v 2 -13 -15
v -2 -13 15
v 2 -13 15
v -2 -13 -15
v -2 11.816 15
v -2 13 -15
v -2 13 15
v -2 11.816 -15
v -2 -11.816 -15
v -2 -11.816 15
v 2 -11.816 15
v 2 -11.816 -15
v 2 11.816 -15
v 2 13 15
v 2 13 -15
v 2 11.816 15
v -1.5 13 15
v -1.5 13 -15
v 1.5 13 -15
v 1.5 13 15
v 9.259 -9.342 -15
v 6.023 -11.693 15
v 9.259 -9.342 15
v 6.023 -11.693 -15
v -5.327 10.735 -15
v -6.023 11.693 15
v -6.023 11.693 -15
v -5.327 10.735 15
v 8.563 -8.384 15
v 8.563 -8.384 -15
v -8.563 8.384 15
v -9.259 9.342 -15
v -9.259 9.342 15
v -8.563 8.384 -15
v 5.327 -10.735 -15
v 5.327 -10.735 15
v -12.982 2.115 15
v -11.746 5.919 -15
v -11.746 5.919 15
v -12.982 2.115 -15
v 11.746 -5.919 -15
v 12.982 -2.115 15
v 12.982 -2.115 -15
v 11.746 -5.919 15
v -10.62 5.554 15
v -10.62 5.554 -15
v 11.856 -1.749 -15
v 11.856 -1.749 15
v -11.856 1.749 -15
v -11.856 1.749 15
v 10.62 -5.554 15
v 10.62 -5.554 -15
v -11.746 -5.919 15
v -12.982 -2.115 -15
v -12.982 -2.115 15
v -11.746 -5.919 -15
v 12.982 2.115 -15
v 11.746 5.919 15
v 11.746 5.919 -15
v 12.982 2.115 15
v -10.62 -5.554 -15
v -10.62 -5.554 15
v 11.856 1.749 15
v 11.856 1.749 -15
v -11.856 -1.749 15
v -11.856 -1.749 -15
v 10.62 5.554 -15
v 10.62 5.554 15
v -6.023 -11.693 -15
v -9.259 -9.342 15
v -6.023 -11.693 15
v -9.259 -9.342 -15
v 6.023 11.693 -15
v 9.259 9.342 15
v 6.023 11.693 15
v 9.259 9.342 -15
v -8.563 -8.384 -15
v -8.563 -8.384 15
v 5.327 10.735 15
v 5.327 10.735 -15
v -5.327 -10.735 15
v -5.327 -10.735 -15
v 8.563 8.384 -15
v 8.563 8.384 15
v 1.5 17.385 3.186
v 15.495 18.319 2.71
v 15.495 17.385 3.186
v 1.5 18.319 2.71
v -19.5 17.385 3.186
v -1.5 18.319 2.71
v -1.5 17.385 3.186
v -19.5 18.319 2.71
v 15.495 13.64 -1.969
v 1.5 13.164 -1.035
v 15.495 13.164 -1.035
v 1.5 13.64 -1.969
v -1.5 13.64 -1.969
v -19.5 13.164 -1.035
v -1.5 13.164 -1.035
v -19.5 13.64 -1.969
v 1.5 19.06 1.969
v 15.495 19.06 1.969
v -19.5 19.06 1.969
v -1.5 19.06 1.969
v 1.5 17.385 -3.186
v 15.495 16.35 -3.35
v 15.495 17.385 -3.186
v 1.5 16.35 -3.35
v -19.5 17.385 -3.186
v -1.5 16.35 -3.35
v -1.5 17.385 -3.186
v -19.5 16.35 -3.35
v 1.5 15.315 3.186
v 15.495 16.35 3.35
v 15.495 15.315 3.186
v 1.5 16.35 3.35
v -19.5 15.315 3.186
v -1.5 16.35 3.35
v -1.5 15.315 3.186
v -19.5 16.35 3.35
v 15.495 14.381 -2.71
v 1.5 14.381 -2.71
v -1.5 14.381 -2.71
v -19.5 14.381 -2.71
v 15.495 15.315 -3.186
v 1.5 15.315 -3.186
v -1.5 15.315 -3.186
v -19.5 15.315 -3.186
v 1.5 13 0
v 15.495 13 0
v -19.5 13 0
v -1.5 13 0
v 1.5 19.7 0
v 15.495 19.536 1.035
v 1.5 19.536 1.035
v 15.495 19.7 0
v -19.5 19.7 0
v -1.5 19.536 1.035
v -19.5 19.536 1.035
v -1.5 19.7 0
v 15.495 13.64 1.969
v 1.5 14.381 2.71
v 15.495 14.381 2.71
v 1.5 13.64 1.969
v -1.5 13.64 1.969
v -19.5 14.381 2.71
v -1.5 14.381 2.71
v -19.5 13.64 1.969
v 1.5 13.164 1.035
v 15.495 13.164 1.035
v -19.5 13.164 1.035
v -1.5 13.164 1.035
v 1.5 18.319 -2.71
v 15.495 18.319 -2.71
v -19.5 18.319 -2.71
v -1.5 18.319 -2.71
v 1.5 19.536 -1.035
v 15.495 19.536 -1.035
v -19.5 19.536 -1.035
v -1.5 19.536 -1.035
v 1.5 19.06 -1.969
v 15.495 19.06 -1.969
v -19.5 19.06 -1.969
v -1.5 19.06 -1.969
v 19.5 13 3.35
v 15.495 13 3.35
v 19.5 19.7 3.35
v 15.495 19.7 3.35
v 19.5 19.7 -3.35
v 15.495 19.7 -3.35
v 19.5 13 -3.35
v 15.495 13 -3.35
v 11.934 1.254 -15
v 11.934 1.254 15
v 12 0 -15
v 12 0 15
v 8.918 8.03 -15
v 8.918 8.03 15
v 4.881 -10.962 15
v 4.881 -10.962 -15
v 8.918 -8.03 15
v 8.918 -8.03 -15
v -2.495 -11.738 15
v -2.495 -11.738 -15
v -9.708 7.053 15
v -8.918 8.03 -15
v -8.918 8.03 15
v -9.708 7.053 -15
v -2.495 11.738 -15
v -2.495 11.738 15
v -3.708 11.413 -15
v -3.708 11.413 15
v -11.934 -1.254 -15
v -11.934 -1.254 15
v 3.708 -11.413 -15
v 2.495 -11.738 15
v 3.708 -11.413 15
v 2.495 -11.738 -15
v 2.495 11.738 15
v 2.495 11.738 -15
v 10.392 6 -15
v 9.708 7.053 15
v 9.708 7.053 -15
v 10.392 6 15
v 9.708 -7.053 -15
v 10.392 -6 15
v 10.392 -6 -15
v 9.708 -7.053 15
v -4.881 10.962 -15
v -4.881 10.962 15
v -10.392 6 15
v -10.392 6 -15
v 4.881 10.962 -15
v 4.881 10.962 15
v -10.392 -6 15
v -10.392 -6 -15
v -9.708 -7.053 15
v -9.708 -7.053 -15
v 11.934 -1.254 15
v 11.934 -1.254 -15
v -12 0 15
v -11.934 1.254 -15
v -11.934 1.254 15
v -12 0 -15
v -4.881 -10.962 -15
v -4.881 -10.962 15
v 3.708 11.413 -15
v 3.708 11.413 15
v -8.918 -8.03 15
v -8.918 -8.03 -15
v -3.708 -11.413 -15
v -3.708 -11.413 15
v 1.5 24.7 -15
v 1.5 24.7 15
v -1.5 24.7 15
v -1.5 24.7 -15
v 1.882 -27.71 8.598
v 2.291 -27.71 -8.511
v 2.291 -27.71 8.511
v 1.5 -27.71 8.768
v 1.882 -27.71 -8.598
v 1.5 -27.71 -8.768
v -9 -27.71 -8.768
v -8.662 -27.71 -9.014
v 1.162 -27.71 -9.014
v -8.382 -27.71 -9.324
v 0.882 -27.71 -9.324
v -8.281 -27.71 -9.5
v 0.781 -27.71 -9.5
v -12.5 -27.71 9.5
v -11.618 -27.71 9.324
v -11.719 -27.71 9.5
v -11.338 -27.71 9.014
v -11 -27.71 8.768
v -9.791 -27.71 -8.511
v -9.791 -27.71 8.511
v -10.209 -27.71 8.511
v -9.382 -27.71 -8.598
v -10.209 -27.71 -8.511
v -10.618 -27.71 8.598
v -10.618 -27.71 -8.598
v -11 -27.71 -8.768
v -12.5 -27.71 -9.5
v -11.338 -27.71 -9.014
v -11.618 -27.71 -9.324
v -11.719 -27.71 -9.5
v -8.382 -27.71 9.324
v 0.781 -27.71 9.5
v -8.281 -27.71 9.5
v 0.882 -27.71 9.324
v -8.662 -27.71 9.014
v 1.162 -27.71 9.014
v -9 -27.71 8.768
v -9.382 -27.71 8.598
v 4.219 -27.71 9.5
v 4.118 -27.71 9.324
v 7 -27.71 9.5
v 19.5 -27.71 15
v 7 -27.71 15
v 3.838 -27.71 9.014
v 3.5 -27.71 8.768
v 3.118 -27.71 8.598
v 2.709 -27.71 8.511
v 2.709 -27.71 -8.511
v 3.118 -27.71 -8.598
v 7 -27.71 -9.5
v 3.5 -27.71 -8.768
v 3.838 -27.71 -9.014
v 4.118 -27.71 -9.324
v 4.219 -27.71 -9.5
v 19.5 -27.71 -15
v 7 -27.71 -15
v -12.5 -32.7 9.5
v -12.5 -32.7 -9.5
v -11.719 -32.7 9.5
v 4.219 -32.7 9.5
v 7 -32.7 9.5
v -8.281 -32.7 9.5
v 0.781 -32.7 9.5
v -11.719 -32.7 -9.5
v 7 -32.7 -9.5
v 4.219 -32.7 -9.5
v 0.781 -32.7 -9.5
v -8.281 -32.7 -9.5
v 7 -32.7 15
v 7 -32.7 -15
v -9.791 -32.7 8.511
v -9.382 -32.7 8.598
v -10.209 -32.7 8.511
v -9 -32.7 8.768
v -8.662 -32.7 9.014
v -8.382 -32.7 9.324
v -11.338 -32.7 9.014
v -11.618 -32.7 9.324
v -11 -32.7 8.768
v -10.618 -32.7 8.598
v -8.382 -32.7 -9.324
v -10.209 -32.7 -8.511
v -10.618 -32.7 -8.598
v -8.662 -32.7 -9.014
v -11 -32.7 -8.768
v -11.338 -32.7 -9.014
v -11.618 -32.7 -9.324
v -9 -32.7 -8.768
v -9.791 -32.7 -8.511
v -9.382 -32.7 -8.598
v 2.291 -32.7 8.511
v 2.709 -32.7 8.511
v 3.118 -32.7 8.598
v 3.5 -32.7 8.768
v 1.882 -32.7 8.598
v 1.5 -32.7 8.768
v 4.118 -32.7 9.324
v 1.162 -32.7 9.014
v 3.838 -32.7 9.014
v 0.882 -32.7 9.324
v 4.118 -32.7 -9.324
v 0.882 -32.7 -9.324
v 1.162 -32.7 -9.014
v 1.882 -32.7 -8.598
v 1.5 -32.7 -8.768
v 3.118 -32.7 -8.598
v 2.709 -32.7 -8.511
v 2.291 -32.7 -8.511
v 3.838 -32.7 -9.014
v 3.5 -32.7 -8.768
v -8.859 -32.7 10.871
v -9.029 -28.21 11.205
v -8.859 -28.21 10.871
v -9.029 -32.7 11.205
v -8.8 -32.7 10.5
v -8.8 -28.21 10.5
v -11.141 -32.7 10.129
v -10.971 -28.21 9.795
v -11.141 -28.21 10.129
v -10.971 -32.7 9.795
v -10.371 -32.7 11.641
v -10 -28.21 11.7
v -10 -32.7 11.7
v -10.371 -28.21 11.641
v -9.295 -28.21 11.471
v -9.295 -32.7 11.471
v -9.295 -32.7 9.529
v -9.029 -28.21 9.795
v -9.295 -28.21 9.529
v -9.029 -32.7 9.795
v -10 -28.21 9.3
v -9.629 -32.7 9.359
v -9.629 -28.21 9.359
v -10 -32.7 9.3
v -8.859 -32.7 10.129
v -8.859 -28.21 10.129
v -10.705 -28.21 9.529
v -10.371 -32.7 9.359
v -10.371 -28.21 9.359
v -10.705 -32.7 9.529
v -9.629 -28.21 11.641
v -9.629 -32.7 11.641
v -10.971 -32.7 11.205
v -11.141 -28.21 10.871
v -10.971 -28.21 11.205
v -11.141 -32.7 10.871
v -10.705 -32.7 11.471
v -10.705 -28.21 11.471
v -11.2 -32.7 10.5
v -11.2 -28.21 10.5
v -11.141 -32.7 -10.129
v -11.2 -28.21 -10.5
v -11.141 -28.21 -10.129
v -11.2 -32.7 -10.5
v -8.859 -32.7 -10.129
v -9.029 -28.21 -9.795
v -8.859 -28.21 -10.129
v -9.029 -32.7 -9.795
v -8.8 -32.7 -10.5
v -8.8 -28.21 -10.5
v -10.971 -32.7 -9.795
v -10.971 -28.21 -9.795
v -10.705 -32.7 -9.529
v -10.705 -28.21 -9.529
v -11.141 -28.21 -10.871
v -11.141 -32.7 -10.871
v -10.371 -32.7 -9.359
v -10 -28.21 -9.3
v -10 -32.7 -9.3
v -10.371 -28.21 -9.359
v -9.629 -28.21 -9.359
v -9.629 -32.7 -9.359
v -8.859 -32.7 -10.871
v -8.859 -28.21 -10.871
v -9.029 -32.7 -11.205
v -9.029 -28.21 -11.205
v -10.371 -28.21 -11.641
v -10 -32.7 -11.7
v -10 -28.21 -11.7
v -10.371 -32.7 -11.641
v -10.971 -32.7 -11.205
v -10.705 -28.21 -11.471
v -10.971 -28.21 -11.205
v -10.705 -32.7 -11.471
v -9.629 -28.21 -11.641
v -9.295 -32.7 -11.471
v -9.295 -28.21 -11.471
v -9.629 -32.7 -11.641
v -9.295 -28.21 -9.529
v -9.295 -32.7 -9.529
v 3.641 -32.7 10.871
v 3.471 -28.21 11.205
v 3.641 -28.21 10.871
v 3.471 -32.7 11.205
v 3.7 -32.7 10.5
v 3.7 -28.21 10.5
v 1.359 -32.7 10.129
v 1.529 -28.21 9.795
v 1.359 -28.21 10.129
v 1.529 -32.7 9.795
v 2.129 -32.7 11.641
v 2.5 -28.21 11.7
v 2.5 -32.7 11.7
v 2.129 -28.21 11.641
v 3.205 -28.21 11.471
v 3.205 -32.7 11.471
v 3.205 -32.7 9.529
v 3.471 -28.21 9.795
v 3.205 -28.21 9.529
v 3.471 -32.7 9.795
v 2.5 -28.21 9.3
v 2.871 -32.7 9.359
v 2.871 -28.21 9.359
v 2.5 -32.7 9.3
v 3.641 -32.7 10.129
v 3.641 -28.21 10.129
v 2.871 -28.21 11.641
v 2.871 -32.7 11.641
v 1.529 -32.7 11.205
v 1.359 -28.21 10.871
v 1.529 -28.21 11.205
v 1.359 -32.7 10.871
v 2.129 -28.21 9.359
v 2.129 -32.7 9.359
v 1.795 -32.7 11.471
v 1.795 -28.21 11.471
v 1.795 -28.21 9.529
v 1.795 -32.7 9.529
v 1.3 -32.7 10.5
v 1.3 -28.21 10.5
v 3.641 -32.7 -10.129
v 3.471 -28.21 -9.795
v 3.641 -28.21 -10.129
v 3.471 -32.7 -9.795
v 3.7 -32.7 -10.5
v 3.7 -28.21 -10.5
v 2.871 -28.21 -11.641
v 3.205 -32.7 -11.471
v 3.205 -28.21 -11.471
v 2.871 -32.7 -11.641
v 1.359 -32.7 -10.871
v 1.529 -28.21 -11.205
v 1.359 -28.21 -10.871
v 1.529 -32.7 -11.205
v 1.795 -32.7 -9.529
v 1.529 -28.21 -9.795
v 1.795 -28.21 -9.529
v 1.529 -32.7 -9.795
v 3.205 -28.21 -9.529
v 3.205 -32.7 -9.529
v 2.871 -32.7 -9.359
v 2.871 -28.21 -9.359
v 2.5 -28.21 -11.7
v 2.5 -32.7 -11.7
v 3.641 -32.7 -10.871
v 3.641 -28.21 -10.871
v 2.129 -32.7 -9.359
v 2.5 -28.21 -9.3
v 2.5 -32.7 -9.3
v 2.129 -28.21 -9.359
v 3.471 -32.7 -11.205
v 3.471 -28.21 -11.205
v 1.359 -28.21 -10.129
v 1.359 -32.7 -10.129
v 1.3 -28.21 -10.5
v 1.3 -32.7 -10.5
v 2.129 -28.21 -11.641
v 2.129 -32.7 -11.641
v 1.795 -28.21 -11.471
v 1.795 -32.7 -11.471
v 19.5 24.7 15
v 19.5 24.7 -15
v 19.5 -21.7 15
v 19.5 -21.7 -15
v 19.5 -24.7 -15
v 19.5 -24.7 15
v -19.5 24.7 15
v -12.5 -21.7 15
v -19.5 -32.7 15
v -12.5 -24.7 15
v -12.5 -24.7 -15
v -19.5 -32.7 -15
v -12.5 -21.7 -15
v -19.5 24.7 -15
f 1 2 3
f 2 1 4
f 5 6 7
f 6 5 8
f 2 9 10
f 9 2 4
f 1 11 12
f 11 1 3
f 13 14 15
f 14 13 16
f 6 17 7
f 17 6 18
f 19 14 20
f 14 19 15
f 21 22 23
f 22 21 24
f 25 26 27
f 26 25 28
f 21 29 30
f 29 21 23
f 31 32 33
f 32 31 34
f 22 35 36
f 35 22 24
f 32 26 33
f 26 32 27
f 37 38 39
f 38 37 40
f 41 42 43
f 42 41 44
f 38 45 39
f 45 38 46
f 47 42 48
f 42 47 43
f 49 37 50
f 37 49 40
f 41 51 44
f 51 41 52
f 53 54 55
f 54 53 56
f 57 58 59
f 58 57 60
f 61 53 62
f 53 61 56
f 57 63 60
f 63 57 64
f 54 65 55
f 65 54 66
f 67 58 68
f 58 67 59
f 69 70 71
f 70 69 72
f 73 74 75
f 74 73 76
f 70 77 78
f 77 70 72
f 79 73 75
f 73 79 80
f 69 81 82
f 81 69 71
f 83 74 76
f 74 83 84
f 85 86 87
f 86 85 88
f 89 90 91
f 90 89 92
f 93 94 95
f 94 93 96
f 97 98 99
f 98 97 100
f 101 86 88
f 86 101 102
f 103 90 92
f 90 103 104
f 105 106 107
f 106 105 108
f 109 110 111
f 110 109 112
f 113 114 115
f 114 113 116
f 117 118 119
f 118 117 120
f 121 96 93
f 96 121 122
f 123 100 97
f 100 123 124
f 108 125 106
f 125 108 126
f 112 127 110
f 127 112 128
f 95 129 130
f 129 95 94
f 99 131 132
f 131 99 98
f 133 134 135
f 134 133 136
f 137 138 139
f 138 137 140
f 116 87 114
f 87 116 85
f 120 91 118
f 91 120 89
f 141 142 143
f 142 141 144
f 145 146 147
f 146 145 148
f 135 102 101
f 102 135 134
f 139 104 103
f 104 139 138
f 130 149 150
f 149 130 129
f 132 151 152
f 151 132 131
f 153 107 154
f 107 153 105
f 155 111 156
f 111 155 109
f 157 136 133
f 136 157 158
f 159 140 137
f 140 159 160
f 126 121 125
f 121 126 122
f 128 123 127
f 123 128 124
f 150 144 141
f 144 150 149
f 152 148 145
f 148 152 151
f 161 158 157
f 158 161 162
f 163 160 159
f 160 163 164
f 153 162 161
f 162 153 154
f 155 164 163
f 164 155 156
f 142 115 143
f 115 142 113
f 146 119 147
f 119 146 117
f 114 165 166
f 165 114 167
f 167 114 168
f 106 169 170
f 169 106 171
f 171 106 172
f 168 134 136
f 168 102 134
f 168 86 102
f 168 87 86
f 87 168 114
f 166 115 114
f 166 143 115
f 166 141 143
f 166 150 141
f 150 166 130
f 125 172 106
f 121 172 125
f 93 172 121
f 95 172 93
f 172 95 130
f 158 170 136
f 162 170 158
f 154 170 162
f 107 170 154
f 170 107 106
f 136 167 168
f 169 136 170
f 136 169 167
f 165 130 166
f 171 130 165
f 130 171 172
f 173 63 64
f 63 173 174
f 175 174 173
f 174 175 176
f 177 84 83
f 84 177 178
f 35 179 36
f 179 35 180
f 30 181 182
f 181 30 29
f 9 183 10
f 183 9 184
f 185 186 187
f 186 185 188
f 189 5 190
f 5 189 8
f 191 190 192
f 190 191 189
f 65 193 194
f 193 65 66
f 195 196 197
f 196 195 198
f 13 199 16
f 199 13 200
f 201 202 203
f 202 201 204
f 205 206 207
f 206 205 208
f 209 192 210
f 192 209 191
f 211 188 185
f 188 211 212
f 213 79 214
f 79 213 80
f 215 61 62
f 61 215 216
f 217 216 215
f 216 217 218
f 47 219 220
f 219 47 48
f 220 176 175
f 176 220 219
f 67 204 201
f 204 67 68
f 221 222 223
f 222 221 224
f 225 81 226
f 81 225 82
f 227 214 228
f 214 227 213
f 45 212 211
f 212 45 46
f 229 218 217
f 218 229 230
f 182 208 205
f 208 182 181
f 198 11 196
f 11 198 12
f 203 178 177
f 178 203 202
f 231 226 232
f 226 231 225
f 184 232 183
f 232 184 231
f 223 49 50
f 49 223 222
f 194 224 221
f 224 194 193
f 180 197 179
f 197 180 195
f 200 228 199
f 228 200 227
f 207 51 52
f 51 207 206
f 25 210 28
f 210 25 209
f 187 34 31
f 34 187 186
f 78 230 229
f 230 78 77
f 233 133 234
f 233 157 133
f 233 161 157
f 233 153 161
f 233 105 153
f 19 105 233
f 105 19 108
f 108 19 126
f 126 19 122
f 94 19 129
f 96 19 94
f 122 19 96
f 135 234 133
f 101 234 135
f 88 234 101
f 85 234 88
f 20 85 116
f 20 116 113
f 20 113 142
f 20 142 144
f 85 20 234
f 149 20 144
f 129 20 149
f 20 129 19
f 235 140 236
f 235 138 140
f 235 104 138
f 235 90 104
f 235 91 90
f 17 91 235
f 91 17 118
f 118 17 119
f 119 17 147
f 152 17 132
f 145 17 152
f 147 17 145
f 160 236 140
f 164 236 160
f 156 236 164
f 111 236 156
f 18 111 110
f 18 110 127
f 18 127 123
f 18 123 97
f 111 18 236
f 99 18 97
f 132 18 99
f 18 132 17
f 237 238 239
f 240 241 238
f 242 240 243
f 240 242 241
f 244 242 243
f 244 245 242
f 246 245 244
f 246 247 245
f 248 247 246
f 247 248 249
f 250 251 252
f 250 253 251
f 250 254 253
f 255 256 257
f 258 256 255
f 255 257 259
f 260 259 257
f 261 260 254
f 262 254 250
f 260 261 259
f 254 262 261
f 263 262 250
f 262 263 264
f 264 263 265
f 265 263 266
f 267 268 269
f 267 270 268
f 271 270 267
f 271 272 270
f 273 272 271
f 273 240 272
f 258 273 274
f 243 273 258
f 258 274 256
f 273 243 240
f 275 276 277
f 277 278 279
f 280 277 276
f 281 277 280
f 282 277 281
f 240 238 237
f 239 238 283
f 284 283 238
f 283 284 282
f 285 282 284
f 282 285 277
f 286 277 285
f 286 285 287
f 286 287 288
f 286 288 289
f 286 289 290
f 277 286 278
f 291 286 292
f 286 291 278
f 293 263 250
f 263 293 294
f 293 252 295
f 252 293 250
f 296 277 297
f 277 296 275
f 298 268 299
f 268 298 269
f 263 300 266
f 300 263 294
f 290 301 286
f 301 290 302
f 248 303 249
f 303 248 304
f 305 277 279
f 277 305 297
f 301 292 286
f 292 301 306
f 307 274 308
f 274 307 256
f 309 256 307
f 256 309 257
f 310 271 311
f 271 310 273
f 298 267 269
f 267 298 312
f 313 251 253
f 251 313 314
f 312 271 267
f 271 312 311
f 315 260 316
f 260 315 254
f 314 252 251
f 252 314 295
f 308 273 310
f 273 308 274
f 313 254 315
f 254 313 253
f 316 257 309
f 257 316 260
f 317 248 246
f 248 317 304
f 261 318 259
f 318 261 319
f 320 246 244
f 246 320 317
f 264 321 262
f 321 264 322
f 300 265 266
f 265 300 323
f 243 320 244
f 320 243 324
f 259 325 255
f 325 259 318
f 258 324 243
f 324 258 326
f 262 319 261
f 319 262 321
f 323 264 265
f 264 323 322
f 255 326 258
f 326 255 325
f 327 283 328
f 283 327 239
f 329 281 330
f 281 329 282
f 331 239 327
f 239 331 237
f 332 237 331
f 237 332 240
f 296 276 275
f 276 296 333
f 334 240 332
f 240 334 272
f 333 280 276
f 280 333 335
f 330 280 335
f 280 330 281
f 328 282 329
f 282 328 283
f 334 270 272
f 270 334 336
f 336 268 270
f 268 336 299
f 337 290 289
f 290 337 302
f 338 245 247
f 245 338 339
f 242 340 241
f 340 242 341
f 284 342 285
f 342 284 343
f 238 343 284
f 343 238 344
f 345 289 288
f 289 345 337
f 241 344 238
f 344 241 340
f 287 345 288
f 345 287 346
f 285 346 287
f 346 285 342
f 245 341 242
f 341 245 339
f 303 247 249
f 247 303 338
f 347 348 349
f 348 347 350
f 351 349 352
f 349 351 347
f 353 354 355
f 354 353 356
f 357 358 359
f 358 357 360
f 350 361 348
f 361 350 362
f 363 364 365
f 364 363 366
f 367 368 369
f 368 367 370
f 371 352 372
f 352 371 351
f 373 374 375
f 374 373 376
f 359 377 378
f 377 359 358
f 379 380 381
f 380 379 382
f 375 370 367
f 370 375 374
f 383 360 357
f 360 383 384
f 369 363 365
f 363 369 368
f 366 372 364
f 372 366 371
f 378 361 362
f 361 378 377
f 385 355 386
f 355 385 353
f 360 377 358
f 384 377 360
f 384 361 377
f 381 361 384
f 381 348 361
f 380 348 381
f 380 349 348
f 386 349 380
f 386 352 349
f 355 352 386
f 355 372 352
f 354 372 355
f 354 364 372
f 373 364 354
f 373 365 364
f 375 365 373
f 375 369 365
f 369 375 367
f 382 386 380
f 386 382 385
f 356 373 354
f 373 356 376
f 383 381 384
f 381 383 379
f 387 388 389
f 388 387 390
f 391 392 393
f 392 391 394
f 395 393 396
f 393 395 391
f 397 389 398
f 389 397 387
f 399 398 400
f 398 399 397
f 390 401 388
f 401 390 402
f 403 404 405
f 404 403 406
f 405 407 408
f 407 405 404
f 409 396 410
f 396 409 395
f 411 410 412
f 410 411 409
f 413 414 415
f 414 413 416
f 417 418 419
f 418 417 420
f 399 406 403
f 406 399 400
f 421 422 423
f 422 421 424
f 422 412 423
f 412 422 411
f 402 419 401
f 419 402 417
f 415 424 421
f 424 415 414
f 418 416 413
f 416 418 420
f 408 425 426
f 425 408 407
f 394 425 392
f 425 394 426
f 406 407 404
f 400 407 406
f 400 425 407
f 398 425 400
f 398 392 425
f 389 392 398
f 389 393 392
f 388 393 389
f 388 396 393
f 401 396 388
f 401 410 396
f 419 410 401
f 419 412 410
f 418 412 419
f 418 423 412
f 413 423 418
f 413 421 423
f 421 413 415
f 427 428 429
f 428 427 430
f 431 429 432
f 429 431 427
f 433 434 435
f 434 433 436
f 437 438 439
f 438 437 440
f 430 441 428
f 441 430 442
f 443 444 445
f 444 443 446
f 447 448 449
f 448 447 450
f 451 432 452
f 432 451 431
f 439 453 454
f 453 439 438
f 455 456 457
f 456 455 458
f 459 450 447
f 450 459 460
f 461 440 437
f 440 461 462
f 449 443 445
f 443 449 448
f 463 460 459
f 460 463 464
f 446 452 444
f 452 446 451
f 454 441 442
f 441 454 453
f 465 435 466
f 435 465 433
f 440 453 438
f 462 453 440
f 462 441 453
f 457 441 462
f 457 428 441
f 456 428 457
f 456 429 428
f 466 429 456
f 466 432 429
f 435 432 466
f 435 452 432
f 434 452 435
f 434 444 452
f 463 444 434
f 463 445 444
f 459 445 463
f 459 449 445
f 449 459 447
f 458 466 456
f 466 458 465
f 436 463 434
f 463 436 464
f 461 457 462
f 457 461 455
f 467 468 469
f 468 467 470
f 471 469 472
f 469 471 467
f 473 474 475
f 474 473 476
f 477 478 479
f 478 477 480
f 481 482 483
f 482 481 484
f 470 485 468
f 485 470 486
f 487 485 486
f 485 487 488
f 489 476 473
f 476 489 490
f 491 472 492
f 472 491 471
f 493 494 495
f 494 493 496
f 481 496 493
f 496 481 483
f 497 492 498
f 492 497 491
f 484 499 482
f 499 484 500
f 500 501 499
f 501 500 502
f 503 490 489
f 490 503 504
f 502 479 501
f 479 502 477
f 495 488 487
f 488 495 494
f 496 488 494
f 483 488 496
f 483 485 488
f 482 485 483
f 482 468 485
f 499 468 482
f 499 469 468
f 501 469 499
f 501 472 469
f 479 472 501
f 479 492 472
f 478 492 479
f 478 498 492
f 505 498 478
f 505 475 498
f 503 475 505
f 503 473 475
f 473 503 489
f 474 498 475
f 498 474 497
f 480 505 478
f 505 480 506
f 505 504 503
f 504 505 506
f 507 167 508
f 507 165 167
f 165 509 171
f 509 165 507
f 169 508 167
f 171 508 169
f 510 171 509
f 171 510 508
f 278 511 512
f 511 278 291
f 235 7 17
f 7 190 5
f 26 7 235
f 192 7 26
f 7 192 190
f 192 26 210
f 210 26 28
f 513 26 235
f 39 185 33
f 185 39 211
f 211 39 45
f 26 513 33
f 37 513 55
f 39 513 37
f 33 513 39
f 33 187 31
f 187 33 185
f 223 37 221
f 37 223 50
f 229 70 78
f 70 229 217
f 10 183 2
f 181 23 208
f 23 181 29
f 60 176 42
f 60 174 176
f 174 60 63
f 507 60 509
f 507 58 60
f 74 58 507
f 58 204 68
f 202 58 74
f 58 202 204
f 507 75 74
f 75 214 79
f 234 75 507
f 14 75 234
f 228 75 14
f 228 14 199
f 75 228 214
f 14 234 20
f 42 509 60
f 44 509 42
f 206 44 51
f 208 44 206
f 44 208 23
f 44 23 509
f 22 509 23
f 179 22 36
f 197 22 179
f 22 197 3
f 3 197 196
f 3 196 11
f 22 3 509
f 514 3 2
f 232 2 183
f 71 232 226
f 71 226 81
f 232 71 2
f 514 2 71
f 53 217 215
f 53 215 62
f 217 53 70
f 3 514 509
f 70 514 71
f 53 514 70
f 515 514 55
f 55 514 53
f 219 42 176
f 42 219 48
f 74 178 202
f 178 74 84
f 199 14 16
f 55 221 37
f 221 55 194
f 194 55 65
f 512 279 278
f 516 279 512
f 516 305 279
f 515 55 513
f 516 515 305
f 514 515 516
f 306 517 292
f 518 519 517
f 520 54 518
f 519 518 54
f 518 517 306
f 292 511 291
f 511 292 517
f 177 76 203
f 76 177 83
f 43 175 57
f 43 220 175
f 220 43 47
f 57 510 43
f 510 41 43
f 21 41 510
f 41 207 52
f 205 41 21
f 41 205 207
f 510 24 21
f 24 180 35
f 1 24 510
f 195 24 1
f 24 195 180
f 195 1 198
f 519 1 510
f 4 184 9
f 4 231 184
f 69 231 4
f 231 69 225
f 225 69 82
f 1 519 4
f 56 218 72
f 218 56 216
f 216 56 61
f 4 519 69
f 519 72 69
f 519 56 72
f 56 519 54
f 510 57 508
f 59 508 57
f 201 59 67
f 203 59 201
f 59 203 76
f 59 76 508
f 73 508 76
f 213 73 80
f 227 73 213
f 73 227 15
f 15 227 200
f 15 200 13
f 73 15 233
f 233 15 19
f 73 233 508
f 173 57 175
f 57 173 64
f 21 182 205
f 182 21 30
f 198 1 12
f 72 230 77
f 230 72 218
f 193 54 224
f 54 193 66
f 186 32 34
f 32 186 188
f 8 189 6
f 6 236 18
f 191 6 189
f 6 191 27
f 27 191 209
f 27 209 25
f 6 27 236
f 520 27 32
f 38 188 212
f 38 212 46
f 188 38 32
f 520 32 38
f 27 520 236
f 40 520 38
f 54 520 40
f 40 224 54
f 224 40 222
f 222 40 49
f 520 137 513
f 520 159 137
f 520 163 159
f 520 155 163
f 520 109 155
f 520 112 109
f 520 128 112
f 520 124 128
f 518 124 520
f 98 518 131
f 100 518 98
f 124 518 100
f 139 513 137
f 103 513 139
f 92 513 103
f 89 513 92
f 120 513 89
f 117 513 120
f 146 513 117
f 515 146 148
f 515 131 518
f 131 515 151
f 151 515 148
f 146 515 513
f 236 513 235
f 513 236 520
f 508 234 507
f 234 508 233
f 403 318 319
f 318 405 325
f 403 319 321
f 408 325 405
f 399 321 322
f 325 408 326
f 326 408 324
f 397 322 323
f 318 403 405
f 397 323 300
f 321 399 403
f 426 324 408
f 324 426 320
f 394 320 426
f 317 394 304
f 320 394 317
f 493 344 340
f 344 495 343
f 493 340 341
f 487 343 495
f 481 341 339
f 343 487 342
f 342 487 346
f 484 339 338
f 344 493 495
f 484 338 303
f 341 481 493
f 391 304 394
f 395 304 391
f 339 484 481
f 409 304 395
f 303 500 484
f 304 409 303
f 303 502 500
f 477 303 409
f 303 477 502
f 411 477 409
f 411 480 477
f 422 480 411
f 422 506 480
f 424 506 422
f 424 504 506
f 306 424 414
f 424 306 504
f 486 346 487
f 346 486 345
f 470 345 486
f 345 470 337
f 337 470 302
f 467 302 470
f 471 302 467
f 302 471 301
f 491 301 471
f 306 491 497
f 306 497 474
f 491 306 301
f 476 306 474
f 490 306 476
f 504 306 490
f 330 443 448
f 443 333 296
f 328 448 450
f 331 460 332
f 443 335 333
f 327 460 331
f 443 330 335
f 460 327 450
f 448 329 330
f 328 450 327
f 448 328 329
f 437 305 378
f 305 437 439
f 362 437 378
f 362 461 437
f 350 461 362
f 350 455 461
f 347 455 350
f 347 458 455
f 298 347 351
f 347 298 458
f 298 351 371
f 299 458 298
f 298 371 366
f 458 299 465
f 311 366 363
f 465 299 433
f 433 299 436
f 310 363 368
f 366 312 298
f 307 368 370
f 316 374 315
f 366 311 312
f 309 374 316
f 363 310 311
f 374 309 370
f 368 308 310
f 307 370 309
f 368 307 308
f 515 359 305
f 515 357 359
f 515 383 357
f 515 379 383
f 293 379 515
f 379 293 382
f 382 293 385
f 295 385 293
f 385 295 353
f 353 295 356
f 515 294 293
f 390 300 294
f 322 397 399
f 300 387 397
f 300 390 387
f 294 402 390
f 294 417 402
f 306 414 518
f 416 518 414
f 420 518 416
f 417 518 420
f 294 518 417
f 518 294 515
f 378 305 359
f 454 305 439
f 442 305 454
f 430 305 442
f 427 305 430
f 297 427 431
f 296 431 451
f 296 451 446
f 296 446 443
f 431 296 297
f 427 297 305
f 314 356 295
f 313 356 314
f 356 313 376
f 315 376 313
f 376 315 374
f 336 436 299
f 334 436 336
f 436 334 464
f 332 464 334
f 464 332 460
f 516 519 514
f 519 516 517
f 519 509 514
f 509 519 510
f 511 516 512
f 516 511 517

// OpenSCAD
// file: lib/boltDim.scad
/*
    Mounting Blocks to build a camera boom.

    Copyright (C) 2021 John Winans

    This program is free software: you can redistribute it and/or modify
    it under the terms of the GNU General Public License as published by
    the Free Software Foundation, either version 3 of the License, or
    (at your option) any later version.

    This program is distributed in the hope that it will be useful,
    but WITHOUT ANY WARRANTY; without even the implied warranty of
    MERCHANTABILITY or FITNESS FOR A PARTICULAR PURPOSE.  See the
    GNU General Public License for more details.

    You should have received a copy of the GNU General Public License
    along with this program.  If not, see <https://www.gnu.org/licenses/>.
*/

bolt_dim_M2_dia = 3;		// for M2 bolt loose fit
bolt_dim_M2_tap = 2.4;		// for self-tapping a M2 bolt
bolt_dim_M2_head_dia = 4.6;// diameter for a crown countersink

bolt_dim_M25_dia = 3.5;		// for M2.5 bolt loose fit
bolt_dim_M25_tap = 2.6;		// for self-tapping a M2.5 bolt
bolt_dim_M25_head_dia = 6;	// diameter for a crown countersink

bolt_dim_M3_dia = 3.6;		// M3 bolt loose fit
bolt_dim_M3_tap = 3.1;		// for self-tapping M3 bolt
bolt_dim_M3_head_dia = 6.5;	// diameter for a crown countersink

bolt_dim_M5_dia = 5.4;		// for M5 bolt loose fit
bolt_dim_M5_tap = 5;		// for self-tapping a M5 bolt
bolt_dim_M5_head_dia = 9;	// diameter for a crown countersink

nut_dim_M5_DIN985 = 9.6;	// diameter for a hex hole to retain am M5 myloc


bolt_dim_quarter_dia = 6.7;	// for 1/4" bolt loose fit
bolt_dim_quarter_carriage_neck_depth = 4;	// neck length
// file: lib/pimount.scad
/*
    Mounting Blocks to build a camera boom.

    Copyright (C) 2021 John Winans

    This program is free software: you can redistribute it and/or modify
    it under the terms of the GNU General Public License as published by
    the Free Software Foundation, either version 3 of the License, or
    (at your option) any later version.

    This program is distributed in the hope that it will be useful,
    but WITHOUT ANY WARRANTY; without even the implied warranty of
    MERCHANTABILITY or FITNESS FOR A PARTICULAR PURPOSE.  See the
    GNU General Public License for more details.

    You should have received a copy of the GNU General Public License
    along with this program.  If not, see <https://www.gnu.org/licenses/>.
*/


include <boltDim.scad>


//pi3_example();

piX=85;
piY=56;

piDefaultStandoffHeight=5;

piDimX=85;
piDimY=56;
piDimCornerRad=3;


// 49x58 square on center
piHoleCenters=[
	[ 3.5, 3.5, 0 ],
	[ 3.5, 3.5+49, 0 ],
	[ 3.5+58, 3.5, 0 ],
	[ 3.5+58, 3.5+49, 0 ]
];


v1_hole_centers=[
	[ -24/2+2, 25/2-2, 0 ],
	[ -24/2+2, -25/2+2, 0 ],
	[ -24/2+2+12.5, 25/2-2, 0 ],
	[ -24/2+2+12.5, -25/2+2, 0 ],
];


hq_hole_centers=[
	[ -38/2+4, 38/2-4, 0 ],
	[ -38/2+4, -38/2+4, 0 ],
	[ 38/2-4, 38/2-4, 0 ],
	[ 38/2-4, -38/2+4, 0 ],
];


/**
* The material to add in order to mount a Raspberry PI3. 
* For example, things like standoffs.
******************************************************************/
module pi3_pos(standoffHeight=piDefaultStandoffHeight, reference=true)
{
    translate([0, 0, -(standoffHeight+.01)])
        for ( pos = piHoleCenters )
            translate(pos) cylinder(d=6, h=standoffHeight, $fn=20);
  
    if(reference)  
    {
        // reference PCB shape (shown but not part of the object)
        %translate([piDimCornerRad, piDimCornerRad, 0]) minkowski()
        {
            cube([piDimX-2*piDimCornerRad, piDimY-2*piDimCornerRad, 1.4-.02]);
            cylinder(r=piDimCornerRad, h=.01);
        }
    }
}


/**
******************************************************************/
module pi_camera_v1_neg(
	standoffHeight=piDefaultStandoffHeight, 
	mountHoleDepth=4.5, 
	threadin=true)
{
	boltd=threadin ? bolt_dim_M2_tap : bolt_dim_M2_dia;
	for (pos = v1_hole_centers)
		translate(pos) translate([0,0,standoffHeight-mountHoleDepth]) cylinder(d=boltd, h=mountHoleDepth+.01, $fn=20);
	//translate([0,0,standoffHeight/2]) cube([25,19,piDefaultStandoffHeight], center=true);
}

/**
******************************************************************/
module pi_camera_v1_pos(
    standoffHeight=piDefaultStandoffHeight)
{
	for (pos = v1_hole_centers)
		translate(pos) 
			cylinder(d=4, h=standoffHeight, $fn=30);
}

/**
******************************************************************/
module pi_camera_hq_neg(
	standoffHeight=piDefaultStandoffHeight, 
	mountHoleDepth=4.5, 
	threadin=true)
{
	boltd=threadin ? bolt_dim_M25_tap : bolt_dim_M25_dia;
	for (pos = hq_hole_centers)
		translate(pos) translate([0,0,standoffHeight-mountHoleDepth]) cylinder(d=boltd, h=mountHoleDepth+.01, $fn=20);
}

/**
******************************************************************/
module pi_camera_hq_pos(
    standoffHeight=piDefaultStandoffHeight)
{
	for (pos = hq_hole_centers)
		translate(pos) 
			translate([0,0,standoffHeight/2]) cube([5.5,5.5,standoffHeight], center=true);
}


/**
* The material to subtract to mount a Raspberry PI3.
* For example, things like the bolt holes within standoffs,
* conectors,...
*
* @param threadin True=make standoff holes to thread 2.5mm 
*   into the material itself, False=proivide space for bolt & 
*   countersink the head
******************************************************************/
module pi3_neg(standoffHeight=piDefaultStandoffHeight, mountHoleDepth=4.5, threadin=true)
{
    boltd=threadin ? bolt_dim_M25_tap : bolt_dim_M25_dia;
    
    // hollow out the standoffs
    translate([0, 0, -mountHoleDepth-.01])
        for (pos = piHoleCenters)
        {
            translate(pos) cylinder(d=boltd, h=mountHoleDepth+.02, $fn=20); // bolt
            if (!threadin)
                translate(pos) cylinder(d=5, h=7, $fn=20); // countersink
        }
        
    // The Ethernet
    translate([85, 11, 1.4+14.5/2]) cube([20, 17, 14.5], center=true);

    // The USB ports
    translate([85, 29, 1.4+16.5/2]) cube([20, 16, 16.5], center=true);
    translate([85, 47, 1.4+16.5/2]) cube([20, 16, 16.5], center=true);

//15x6 on center
    // an access slot for the SD card
    translate([0, 28,-1]) cube([30, 15, 6], center=true);
}






// a test module to demonstrate how to use this
module pi3_example()
{
    difference()
    {
        pi3_pos();		// the mounting material
        pi3_neg();		// ...less the holes for bolts, connectors etc
    }
}
// file: lib/clamp.scad
/*
	Mounting Blocks to build a camera boom.

    Copyright (C) 2021 John Winans

    This program is free software: you can redistribute it and/or modify
    it under the terms of the GNU General Public License as published by
    the Free Software Foundation, either version 3 of the License, or
    (at your option) any later version.

    This program is distributed in the hope that it will be useful,
    but WITHOUT ANY WARRANTY; without even the implied warranty of
    MERCHANTABILITY or FITNESS FOR A PARTICULAR PURPOSE.  See the
    GNU General Public License for more details.

    You should have received a copy of the GNU General Public License
    along with this program.  If not, see <https://www.gnu.org/licenses/>.
*/

include <boltDim.scad>


//********************************************************
// A pipe & bolt holes for a pipe clamp.
//********************************************************
module clamp_neg(
    relief_slot,        // how far from the edge of the pipe should the relief slot go?
    pipe_length, 
    pipe_diameter,
    clamp_bolt_length,    // used to determine the length of the clamp bolt
    clamp_bolt_dia,
    clamp_bolt_neck_depth,
    clamp_bolt_clearance,
    rib=false, 
    stripe=true
    )
{
    clamp_bolt_offset = pipe_diameter/2+clamp_bolt_dia/2+clamp_bolt_clearance;

    cz = pipe_length+.01;
    
    // the pipe hole
    cylinder(d=pipe_diameter, h=cz+.01, center=true, $fn=60);
    
    if (rib)
    {
        // rib it
        rh=2;
        rs=4;
        for (z=[-cz/2+rh*.5+1 : rs : cz/2]) // XXX fudge start to center it
            translate([0,0,z])
                cylinder(d=pipe_diameter+1, h=rh, center=true, $fn=60);
    }
    
    if (stripe)
    {
        // stripe it
        //rh=1.5;
        rh=4;
        rt=360/10;
        for (theta=[90:rt:2690])
            rotate([0,0,theta]) cube([pipe_diameter+2, rh, cz+.01], center=true);
    }
    
    // releif notch
    translate([0,pipe_diameter/2+relief_slot/2,0]) cube([3, relief_slot+.01, cz+.01], center=true);
    
    // clamp bolt
    translate([0,clamp_bolt_offset,0])
    {
        rotate([0,90,0]) 
        cylinder(d=clamp_bolt_dia, h=clamp_bolt_length+.01, $fn=20, center=true);
    
        // square for carriage bolt head
        translate([clamp_bolt_length/2-clamp_bolt_neck_depth/2,0,0])
            cube([clamp_bolt_neck_depth+.01, clamp_bolt_dia,clamp_bolt_dia], center=true);
    }
}
// main file
/*
    Mounting Blocks to build a camera boom.

    Copyright (C) 2021 John Winans

    This program is free software: you can redistribute it and/or modify
    it under the terms of the GNU General Public License as published by
    the Free Software Foundation, either version 3 of the License, or
    (at your option) any later version.

    This program is distributed in the hope that it will be useful,
    but WITHOUT ANY WARRANTY; without even the implied warranty of
    MERCHANTABILITY or FITNESS FOR A PARTICULAR PURPOSE.  See the
    GNU General Public License for more details.

    You should have received a copy of the GNU General Public License
    along with this program.  If not, see <https://www.gnu.org/licenses/>.
*/

include <lib/clamp.scad>
include <lib/pimount.scad>


//********************************************************
// The size of the hole for the pipe(s)
pipe_diameter=24;       // 3/4" conduit


block_c_bolt_pipe_clearance=1;
block_c_bolt_inset=5;       // from clamp-bolt to the end of the block

block_inset=15;





// calculate the dimensions of the block using the above config variables

cx = pipe_diameter+block_inset;   

cbd=bolt_dim_quarter_dia;		// clamp bolt diameter
//cz=cx;							// make the block square 
cz=30;							// make the block just wider than the camera

cbl=cx;							// length of the clamp bolt bore
cbnd=bolt_dim_quarter_carriage_neck_depth;

cbc=1;							// gap between the clamp bolt & pipe
rs=cbd+block_c_bolt_inset+cbc;	// relief slot width

cam_offset=8;					// how far to stick out the 'back'

cy = pipe_diameter+rs*2+cam_offset;


v1block();


/**
* A helper module to create the clamp negative space using the above config values.
**********************************************************************************/
module cn()
{
    clamp_neg(
        clamp_bolt_length=cbl,
        clamp_bolt_dia=cbd,
        clamp_bolt_neck_depth=cbnd,
        relief_slot=rs,
        pipe_length=cz,
        pipe_diameter=pipe_diameter,
        clamp_bolt_clearance=cbc);
}


/**
* A mounting bracket for a RPI V1.3 camera
**********************************************************************************/
module v1block()
{
	// dimensions of the camera-plate
	cpx=cx;
	cpy=cam_offset;
	cpz=cz;

	cam_depth=5;
	
    
    difference()
    {
		translate([0,-cam_offset/2,0]) cube([cx,cy,cz], center=true);
        cn();

        strain_offset=block_inset/2;
        strain_thickness=3;
        // strain relief
        translate([strain_offset,-cy/2+cam_offset/2+strain_thickness/2,0]) 
			cube([cx+1,3, cz+1], center=true);

		translate([0,-cy/2-cam_offset/2+cam_depth-.01,0]) 
		{
			rotate([90,0,0]) 
			{
				difference()
				{
					union()
					{
						translate([5,0,cam_depth/2]) cube([35,19,cam_depth], center=true);
						translate([24-5,0,cam_depth/2]) cube([24,cz+.01,cam_depth], center=true);
					}
					pi_camera_v1_pos();
				}
				pi_camera_v1_neg();
			}
		}
    }
}
